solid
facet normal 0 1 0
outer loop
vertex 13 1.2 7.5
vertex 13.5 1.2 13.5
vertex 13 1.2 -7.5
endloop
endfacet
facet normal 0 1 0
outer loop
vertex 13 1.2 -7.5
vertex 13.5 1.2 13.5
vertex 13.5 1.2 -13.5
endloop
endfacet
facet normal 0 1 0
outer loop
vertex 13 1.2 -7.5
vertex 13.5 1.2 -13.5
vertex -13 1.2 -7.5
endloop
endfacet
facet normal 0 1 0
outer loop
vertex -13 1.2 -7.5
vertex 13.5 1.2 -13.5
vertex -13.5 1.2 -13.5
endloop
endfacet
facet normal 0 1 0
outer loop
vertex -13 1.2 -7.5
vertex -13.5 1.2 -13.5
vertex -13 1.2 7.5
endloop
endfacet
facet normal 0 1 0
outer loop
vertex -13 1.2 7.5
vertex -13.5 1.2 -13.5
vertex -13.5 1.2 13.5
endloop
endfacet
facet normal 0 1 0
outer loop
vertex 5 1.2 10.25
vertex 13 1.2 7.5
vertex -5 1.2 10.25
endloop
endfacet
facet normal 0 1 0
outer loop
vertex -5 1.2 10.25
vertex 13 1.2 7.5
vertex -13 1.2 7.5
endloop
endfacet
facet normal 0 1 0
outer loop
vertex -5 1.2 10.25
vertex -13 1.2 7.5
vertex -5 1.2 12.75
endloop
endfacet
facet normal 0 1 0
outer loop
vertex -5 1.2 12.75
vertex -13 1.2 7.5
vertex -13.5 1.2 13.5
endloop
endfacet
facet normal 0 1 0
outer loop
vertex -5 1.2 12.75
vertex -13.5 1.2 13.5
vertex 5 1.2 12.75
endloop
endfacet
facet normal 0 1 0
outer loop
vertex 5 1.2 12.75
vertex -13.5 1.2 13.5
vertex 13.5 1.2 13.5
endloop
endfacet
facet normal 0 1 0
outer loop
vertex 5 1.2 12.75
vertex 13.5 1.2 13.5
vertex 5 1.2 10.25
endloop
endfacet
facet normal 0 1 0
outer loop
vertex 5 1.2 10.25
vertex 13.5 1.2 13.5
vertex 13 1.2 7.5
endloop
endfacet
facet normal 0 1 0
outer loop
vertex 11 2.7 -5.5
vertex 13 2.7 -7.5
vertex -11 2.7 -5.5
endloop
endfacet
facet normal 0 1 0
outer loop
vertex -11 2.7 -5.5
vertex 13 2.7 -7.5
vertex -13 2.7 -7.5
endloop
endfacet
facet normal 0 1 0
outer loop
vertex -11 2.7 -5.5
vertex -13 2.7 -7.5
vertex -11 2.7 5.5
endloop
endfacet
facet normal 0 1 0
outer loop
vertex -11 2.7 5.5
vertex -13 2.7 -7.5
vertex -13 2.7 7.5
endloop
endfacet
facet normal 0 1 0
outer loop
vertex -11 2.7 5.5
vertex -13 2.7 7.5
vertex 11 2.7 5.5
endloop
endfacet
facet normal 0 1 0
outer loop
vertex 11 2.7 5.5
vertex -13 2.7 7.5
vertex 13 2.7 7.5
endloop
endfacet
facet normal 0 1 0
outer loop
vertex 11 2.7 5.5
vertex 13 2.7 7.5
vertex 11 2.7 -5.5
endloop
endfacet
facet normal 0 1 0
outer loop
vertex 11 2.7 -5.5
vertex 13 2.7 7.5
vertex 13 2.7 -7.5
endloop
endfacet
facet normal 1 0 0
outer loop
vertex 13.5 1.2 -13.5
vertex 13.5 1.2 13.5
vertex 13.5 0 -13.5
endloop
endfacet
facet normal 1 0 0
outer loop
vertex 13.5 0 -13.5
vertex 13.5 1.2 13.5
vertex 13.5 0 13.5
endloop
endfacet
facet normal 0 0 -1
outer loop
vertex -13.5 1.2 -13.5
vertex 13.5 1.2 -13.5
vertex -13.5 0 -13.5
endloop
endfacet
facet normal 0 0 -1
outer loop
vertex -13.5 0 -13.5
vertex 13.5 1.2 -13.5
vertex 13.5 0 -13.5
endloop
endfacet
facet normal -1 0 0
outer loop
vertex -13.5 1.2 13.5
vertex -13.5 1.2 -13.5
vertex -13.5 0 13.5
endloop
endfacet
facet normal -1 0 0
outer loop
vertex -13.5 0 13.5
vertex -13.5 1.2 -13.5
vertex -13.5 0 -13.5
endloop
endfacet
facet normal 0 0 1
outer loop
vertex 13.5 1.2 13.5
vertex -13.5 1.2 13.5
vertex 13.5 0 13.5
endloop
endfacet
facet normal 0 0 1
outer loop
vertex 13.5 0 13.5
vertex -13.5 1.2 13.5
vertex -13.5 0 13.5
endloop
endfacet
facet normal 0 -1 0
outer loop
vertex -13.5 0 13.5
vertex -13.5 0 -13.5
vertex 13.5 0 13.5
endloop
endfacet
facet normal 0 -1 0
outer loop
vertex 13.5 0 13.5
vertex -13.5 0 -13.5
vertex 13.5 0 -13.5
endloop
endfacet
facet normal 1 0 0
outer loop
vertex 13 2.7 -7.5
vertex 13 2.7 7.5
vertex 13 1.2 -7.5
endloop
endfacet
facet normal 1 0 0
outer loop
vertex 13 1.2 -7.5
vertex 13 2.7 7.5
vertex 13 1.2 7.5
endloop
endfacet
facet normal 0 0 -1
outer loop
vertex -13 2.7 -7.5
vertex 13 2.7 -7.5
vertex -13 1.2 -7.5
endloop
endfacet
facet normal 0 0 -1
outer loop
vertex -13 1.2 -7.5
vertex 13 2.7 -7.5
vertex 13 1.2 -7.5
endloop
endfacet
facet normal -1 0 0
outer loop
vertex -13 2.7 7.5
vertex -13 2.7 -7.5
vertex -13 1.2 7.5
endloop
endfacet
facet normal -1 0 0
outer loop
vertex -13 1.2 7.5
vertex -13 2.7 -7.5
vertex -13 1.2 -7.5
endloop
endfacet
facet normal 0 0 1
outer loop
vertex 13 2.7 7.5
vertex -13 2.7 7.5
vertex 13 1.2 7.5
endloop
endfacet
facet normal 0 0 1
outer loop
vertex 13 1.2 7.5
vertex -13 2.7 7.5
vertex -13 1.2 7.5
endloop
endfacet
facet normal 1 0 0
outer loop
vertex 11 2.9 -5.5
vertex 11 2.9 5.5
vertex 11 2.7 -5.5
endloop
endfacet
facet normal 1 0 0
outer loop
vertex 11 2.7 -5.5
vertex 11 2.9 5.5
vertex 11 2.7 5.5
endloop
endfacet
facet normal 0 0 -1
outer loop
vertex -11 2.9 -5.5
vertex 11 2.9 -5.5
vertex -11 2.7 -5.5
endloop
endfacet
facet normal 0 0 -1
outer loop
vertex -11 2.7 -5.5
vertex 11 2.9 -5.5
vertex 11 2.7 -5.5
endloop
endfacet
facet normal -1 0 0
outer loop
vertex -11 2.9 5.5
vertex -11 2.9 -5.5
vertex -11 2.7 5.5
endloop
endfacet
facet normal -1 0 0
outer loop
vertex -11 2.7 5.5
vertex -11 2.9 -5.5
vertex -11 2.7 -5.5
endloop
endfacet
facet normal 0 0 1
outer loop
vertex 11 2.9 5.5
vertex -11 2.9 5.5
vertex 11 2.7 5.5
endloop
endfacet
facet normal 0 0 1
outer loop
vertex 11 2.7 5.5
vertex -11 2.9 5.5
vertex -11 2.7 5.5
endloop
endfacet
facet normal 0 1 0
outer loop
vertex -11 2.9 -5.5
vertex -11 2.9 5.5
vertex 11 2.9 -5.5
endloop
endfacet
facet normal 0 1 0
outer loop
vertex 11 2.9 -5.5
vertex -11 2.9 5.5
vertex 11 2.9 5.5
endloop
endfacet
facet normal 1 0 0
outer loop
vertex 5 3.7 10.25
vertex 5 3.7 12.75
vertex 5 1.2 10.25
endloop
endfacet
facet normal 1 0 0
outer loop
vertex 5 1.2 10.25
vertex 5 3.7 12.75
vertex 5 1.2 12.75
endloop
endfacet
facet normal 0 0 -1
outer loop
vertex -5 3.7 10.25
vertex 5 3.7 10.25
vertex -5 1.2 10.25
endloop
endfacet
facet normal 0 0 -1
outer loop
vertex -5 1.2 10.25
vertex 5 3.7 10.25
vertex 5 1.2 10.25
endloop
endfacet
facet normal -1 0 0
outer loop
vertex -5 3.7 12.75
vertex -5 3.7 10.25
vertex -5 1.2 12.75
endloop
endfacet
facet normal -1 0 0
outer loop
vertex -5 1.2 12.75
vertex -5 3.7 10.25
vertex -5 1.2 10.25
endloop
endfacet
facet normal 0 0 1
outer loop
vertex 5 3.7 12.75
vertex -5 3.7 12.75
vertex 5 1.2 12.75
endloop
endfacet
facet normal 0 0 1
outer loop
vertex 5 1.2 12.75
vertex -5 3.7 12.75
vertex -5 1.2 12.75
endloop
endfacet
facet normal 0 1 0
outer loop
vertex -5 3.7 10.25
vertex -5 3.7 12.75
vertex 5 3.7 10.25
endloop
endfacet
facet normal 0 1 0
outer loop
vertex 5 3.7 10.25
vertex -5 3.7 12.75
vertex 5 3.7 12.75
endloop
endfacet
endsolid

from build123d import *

# Parameters (mm, degrees)
SKETCH1_W         = 27
SKETCH1_H         = 27
PCB_DEPTH         = 1.2
GLASS_START       = 1.2
SKETCH2_W         = 26
SKETCH2_H         = 15
GLASS_DEPTH       = 1.5
ACTIVE_AREA_START = 2.7
SKETCH3_W         = 22
SKETCH3_H         = 11
ACTIVE_AREA_DEPTH = 0.2
HEADER_START      = 1.2
SKETCH4_W         = 10
SKETCH4_H         = 2.5
HEADER_DEPTH      = 2.5


with BuildPart() as part:
    # Sketch1 → PCB (new body)
    with BuildSketch(Plane(origin=(0, 0, 0), x_dir=(1, 0, 0), z_dir=(0, 1, 0))):
        Rectangle(SKETCH1_W, SKETCH1_H)
    extrude(amount=PCB_DEPTH)

    # Sketch2 → Glass (add)
    with BuildSketch(Plane(origin=(0, 0, 0), x_dir=(1, 0, 0), z_dir=(0, 1, 0)).offset(GLASS_START)):
        Rectangle(SKETCH2_W, SKETCH2_H)
    extrude(amount=GLASS_DEPTH)

    # Sketch3 → Active_Area (add)
    with BuildSketch(Plane(origin=(0, 0, 0), x_dir=(1, 0, 0), z_dir=(0, 1, 0)).offset(ACTIVE_AREA_START)):
        Rectangle(SKETCH3_W, SKETCH3_H)
    extrude(amount=ACTIVE_AREA_DEPTH)

    # Sketch4 → Header (add)
    with BuildSketch(Plane(origin=(0, 0, 0), x_dir=(1, 0, 0), z_dir=(0, 1, 0)).offset(HEADER_START)):
        with Locations((0, -11.5)):
            Rectangle(SKETCH4_W, SKETCH4_H)
    extrude(amount=HEADER_DEPTH)


solid = part.part
